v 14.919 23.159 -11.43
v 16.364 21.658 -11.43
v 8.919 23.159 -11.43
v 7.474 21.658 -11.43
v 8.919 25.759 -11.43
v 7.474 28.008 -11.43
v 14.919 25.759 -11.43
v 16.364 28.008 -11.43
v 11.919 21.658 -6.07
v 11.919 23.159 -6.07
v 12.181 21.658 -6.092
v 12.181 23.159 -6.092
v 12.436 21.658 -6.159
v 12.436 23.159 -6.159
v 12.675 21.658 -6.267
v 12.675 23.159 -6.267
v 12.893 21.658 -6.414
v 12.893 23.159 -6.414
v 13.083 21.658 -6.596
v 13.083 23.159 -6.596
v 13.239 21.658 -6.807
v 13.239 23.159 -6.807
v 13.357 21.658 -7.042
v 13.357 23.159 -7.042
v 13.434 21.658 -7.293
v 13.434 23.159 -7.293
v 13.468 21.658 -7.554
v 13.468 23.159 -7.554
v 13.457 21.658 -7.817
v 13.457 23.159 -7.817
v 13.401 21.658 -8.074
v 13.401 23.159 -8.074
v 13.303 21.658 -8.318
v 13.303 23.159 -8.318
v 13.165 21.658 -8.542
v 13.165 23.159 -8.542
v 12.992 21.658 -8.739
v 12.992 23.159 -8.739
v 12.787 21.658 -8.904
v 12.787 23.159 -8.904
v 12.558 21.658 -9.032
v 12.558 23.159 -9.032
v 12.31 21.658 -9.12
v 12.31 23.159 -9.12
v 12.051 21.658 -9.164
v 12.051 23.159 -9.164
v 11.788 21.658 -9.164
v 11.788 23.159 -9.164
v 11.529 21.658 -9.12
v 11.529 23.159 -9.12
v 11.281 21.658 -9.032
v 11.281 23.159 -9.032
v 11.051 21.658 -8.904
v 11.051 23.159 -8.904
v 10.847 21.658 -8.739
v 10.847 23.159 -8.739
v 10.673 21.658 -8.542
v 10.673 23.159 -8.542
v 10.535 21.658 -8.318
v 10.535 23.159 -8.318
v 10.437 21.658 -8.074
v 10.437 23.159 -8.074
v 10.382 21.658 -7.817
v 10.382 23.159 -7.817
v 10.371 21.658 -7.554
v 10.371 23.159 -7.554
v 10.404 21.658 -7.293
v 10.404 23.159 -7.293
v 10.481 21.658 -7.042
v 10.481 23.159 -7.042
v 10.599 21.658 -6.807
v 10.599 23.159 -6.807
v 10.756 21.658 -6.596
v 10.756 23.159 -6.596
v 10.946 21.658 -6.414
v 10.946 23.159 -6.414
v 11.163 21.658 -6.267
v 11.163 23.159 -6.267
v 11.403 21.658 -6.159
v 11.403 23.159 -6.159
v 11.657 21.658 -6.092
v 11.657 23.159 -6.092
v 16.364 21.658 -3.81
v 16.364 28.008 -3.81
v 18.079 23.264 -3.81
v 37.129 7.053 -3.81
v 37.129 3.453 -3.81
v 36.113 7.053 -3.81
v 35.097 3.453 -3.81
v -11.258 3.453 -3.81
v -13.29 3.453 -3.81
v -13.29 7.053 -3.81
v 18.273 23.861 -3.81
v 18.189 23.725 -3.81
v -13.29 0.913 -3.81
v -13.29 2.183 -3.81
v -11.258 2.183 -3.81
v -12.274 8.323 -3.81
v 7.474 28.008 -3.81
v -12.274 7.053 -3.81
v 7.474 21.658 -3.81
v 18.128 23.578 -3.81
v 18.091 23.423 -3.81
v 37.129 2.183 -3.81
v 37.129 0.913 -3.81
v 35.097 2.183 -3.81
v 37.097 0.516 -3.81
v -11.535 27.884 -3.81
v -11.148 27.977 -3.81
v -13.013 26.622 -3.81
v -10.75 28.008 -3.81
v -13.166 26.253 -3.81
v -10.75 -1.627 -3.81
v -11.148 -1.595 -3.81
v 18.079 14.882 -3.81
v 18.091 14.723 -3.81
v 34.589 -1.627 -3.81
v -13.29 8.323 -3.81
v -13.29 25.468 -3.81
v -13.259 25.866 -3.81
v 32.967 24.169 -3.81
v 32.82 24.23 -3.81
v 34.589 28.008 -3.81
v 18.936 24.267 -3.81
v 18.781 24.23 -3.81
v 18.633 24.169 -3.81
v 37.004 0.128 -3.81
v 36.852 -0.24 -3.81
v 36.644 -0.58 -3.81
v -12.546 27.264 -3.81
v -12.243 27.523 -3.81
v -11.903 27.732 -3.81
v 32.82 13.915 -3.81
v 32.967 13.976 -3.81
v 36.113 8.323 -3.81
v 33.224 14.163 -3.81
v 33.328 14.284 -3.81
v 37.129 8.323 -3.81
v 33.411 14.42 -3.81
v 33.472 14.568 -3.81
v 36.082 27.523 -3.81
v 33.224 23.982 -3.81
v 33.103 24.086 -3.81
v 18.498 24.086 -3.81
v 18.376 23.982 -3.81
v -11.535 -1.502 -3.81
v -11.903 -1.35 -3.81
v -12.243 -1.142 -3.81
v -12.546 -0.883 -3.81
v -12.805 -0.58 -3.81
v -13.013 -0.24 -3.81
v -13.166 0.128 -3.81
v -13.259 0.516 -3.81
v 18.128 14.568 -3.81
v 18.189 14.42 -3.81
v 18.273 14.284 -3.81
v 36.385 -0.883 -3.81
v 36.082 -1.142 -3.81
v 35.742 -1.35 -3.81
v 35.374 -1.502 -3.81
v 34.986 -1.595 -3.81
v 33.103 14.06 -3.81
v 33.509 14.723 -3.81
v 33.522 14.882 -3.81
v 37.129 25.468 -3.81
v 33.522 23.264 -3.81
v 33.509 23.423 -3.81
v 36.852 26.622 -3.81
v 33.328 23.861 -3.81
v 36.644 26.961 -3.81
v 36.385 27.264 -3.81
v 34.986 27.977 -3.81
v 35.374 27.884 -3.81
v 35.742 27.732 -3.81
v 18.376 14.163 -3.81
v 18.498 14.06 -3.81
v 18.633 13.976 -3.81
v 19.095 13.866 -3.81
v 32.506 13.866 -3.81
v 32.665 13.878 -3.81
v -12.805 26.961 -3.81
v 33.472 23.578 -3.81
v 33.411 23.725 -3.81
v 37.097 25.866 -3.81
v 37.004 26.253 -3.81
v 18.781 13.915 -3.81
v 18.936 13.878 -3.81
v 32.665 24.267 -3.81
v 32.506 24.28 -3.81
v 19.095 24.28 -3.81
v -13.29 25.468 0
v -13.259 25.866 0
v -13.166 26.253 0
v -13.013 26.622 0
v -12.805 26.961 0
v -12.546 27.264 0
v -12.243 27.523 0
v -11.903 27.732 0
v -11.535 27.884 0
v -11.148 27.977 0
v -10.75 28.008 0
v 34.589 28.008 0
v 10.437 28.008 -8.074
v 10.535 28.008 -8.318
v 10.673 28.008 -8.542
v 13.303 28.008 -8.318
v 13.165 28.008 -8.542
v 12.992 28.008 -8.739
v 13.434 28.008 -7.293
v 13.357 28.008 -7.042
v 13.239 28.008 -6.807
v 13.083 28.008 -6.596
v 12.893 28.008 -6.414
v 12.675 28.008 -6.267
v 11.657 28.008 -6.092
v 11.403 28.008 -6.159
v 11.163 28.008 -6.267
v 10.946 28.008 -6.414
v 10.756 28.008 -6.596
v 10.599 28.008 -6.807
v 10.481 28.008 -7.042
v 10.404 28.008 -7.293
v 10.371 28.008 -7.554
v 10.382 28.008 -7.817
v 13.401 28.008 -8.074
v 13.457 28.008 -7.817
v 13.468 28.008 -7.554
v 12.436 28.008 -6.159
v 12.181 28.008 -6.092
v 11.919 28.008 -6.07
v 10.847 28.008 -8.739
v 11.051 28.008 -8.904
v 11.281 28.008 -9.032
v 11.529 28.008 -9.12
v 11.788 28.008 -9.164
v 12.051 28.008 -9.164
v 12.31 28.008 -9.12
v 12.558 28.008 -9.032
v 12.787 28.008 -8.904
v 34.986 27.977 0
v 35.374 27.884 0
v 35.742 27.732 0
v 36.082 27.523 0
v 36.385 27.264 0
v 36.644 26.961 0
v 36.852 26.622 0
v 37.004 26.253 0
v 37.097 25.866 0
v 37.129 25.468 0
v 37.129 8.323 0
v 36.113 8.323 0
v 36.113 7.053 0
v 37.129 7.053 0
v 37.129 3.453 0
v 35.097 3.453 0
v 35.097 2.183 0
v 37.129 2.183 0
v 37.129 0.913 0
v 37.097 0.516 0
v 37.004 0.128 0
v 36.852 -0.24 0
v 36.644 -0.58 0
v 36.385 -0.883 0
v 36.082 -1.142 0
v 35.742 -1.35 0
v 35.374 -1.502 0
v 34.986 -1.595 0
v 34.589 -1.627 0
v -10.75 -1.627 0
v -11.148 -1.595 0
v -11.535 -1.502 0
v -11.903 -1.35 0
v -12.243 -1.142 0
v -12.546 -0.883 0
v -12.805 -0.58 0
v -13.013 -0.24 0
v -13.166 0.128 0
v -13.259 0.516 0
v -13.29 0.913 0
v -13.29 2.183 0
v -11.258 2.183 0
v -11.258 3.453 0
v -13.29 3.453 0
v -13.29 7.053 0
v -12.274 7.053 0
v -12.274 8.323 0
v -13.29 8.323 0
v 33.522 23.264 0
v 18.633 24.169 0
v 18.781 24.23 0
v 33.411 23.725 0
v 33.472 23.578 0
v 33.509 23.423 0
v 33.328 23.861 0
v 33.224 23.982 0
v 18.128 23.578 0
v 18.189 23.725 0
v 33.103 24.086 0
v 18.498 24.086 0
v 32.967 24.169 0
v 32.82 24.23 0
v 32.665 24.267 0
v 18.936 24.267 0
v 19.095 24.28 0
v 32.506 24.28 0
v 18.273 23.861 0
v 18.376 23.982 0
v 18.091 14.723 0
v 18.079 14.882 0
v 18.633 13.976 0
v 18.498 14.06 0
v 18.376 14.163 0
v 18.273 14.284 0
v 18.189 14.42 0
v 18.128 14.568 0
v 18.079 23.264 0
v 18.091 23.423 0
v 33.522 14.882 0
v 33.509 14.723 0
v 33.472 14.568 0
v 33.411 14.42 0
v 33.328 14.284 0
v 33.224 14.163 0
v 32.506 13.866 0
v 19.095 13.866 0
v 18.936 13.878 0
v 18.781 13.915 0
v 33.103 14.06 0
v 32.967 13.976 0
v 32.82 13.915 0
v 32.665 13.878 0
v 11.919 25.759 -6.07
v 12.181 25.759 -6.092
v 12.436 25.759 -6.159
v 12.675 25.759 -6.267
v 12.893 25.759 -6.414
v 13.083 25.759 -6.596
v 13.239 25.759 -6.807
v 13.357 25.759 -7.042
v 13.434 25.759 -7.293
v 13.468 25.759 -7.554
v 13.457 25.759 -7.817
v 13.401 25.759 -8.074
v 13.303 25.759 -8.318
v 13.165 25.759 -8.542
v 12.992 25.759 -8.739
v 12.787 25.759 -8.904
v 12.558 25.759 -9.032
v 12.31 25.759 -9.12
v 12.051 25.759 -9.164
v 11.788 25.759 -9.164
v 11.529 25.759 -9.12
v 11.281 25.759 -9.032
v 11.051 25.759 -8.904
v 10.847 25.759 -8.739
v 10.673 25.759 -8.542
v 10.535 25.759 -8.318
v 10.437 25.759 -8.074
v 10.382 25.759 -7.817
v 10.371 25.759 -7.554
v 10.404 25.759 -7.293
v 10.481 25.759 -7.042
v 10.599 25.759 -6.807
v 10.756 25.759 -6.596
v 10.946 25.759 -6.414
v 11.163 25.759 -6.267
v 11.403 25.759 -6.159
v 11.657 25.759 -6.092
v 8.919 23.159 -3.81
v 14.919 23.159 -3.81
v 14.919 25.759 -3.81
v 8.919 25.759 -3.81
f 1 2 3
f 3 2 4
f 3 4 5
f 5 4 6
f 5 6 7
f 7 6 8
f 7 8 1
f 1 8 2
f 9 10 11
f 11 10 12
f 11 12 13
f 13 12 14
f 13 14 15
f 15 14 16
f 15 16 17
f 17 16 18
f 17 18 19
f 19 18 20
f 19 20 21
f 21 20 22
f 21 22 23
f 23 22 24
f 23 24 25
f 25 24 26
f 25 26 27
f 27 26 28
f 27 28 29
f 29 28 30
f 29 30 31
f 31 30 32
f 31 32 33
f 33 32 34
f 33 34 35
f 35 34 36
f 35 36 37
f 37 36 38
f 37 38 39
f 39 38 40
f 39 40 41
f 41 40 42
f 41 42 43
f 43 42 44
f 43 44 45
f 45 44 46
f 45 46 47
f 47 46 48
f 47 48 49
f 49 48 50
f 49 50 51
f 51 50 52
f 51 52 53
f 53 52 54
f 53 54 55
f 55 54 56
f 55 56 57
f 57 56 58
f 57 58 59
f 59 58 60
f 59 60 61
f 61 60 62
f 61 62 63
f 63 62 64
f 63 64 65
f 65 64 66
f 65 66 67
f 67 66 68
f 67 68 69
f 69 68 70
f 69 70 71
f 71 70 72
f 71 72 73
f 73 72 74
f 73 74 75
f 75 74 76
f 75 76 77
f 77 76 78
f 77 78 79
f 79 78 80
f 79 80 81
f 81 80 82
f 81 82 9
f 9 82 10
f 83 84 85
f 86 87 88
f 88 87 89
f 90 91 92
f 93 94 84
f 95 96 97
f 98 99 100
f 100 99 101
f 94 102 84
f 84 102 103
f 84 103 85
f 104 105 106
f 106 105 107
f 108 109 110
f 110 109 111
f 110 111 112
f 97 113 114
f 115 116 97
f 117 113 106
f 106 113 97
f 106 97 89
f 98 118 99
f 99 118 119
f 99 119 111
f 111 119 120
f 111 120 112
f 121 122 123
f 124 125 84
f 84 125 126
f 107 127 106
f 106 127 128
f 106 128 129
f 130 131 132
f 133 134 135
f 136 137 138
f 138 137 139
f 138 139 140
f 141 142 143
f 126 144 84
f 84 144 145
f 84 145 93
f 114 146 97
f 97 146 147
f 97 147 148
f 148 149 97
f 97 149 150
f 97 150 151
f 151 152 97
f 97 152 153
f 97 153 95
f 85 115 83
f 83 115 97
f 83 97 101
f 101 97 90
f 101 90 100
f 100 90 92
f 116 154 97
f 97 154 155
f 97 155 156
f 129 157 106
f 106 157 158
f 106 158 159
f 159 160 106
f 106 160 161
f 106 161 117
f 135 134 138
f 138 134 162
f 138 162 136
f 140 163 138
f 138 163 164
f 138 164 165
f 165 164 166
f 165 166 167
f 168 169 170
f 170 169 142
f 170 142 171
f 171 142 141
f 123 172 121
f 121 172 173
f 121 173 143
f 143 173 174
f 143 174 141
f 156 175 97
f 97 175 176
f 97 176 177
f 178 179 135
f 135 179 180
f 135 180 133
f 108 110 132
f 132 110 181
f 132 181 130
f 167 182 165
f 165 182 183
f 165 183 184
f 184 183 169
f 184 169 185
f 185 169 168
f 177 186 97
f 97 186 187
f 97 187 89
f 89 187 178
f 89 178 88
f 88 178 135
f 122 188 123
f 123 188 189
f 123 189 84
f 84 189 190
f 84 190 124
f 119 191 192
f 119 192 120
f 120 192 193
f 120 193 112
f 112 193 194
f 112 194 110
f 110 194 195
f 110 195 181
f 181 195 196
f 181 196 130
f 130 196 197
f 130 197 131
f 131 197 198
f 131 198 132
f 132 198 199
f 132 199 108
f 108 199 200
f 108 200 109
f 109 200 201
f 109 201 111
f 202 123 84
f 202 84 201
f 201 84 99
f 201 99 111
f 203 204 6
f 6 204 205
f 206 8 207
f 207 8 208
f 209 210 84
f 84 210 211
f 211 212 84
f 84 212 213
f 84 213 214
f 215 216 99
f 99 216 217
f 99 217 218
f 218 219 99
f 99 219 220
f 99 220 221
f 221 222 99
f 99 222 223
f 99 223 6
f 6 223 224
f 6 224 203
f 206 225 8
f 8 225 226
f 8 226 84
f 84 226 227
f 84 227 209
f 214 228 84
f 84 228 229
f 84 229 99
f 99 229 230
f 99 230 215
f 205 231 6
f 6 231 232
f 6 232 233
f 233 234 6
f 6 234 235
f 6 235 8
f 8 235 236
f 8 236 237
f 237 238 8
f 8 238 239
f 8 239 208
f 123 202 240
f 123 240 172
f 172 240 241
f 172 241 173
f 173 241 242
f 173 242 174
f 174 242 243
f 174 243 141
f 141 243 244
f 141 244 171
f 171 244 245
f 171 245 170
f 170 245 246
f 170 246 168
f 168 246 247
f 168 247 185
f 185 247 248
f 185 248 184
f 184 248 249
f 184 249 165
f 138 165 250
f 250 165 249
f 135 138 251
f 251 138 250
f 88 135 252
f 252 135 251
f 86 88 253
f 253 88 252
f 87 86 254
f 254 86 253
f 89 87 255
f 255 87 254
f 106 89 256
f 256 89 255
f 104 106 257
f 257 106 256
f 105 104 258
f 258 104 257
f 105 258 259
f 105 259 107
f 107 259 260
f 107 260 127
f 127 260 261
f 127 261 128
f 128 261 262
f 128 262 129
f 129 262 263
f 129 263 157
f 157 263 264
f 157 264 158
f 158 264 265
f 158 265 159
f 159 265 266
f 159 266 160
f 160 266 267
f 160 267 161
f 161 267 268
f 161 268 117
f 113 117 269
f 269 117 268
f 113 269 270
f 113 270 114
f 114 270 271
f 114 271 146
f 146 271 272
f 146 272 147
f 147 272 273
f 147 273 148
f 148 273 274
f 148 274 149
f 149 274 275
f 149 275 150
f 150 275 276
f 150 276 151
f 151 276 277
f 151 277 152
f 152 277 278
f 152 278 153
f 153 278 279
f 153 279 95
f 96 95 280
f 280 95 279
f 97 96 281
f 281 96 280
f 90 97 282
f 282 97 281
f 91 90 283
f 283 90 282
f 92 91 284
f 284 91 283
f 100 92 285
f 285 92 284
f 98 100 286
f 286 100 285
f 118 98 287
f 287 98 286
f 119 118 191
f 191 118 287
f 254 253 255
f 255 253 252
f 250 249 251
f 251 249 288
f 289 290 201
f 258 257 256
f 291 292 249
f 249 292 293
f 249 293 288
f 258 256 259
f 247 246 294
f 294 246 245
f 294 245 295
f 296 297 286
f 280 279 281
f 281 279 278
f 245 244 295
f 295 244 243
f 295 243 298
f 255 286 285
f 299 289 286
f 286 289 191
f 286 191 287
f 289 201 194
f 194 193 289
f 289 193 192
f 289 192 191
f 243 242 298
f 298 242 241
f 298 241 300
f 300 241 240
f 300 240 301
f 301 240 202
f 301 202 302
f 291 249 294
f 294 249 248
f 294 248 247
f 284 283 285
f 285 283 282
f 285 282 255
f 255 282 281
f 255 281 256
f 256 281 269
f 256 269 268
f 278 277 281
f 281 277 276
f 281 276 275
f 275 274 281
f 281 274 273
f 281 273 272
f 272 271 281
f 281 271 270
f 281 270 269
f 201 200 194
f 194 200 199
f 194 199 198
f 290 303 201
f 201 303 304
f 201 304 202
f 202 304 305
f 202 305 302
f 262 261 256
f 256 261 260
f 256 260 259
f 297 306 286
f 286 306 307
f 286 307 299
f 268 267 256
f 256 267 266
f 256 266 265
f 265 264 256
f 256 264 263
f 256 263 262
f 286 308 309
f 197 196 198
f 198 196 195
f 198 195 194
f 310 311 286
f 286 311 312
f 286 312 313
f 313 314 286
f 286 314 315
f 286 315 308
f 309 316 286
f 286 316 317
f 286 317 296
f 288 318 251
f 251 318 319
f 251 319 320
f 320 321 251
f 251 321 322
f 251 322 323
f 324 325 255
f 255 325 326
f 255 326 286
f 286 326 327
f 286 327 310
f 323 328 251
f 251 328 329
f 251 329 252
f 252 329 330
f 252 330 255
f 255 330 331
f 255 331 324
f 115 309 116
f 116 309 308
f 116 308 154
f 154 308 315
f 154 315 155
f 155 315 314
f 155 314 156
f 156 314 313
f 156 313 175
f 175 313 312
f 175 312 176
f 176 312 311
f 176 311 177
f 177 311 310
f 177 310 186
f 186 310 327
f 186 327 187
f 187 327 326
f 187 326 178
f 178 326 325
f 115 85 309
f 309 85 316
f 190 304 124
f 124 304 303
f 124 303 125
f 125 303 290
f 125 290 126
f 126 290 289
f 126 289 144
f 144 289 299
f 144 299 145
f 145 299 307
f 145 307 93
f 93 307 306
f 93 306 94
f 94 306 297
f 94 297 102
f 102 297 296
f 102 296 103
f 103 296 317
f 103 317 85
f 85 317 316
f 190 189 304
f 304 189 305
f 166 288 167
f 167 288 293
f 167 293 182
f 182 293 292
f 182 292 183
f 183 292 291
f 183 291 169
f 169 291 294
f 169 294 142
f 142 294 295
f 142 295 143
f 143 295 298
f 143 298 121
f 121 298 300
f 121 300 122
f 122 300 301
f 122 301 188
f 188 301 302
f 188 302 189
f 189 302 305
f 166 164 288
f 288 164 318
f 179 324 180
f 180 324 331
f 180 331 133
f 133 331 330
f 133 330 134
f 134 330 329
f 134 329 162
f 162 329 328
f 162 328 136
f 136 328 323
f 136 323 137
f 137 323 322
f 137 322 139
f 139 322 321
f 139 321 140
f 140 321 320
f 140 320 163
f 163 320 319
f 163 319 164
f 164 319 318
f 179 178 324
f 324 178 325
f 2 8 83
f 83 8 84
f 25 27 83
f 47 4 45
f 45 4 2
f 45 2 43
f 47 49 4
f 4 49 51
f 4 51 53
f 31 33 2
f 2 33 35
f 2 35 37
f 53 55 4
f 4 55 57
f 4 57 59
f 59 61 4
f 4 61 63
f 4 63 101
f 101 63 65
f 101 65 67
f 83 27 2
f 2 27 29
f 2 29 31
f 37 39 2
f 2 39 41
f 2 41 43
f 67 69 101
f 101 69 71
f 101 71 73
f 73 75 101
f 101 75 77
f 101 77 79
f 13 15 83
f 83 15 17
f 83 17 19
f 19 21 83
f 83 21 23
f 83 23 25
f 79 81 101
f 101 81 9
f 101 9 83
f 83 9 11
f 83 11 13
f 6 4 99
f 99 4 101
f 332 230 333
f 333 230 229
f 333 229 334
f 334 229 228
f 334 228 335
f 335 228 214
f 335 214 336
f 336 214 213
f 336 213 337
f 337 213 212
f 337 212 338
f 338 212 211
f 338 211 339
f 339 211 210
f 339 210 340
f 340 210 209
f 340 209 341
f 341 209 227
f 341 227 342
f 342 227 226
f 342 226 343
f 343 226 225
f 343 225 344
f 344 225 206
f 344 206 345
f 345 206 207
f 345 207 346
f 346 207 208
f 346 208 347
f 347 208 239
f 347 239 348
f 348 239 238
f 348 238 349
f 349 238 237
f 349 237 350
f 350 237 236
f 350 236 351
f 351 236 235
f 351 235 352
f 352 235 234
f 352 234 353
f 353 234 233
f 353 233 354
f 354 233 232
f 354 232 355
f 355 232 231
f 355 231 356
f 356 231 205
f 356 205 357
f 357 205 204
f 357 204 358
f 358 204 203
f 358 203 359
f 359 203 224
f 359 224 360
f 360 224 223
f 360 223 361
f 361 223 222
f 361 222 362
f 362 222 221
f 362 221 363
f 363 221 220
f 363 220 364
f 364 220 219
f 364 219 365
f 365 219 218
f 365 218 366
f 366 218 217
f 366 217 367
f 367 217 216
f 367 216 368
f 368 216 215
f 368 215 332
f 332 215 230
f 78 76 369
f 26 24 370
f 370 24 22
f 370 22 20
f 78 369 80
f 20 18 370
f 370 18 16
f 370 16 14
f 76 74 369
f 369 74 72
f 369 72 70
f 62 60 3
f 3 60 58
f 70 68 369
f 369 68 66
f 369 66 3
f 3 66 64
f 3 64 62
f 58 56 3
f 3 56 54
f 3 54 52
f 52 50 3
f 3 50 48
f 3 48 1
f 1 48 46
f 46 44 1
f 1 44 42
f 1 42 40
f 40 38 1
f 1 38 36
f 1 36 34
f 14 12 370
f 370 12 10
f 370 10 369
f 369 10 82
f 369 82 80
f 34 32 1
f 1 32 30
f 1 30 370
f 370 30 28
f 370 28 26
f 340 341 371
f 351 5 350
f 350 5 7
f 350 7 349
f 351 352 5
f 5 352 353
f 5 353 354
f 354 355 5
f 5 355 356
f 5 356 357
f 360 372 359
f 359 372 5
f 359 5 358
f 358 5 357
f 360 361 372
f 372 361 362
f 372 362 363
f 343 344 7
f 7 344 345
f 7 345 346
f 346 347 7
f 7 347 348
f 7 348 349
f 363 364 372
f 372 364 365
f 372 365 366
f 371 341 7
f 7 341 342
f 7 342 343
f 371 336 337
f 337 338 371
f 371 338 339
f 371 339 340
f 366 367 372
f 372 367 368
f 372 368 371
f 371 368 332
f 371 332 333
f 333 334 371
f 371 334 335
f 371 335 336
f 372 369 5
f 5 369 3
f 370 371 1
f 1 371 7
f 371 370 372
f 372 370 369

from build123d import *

# Parameters (mm, degrees)
BOSS_EXTRUDE1_DEPTH = 3.81
SKETCH2_W           = 8.89
SKETCH2_H           = 6.35
BOSS_EXTRUDE2_DEPTH = 7.62
CUT_EXTRUDE1_DEPTH  = 7.62
SKETCH4_W           = 6
SKETCH4_H           = 1.674510172
SKETCH4_H_2         = 0.925489708
CUT_EXTRUDE2_DEPTH  = 7.62


with BuildPart() as part:
    # Sketch1 → Boss-Extrude1 (new body)
    with BuildSketch(Plane.XY):
        with BuildLine():
            Line((37.128754647, 0.913367565), (37.128754647, 2.183367565))
            Line((37.128754647, 2.183367565), (35.096754647, 2.183367565))
            Line((35.096754647, 2.183367565), (35.096754647, 3.453367565))
            Line((35.096754647, 3.453367565), (37.128754647, 3.453367565))
            Line((37.128754647, 3.453367565), (37.128754647, 7.053367565))
            Line((37.128754647, 7.053367565), (36.112754647, 7.053367565))
            Line((36.112754647, 7.053367565), (36.112754647, 8.323367565))
            Line((36.112754647, 8.323367565), (37.128754647, 8.323367565))
            Line((37.128754647, 8.323367565), (37.128754647, 25.468367565))
            ThreePointArc((37.128754647, 25.468367565), (36.384805872, 27.264418789), (34.588754647, 28.008367565))
            Line((34.588754647, 28.008367565), (-10.750245353, 28.008367565))
            ThreePointArc((-10.750245353, 28.008367565), (-12.546296577, 27.264418789), (-13.290245353, 25.468367565))
            Line((-13.290245353, 25.468367565), (-13.290245353, 8.323367565))
            Line((-13.290245353, 8.323367565), (-12.274245353, 8.323367565))
            Line((-12.274245353, 8.323367565), (-12.274245353, 7.053367565))
            Line((-12.274245353, 7.053367565), (-13.290245353, 7.053367565))
            Line((-13.290245353, 7.053367565), (-13.290245353, 3.453367565))
            Line((-13.290245353, 3.453367565), (-11.258245353, 3.453367565))
            Line((-11.258245353, 3.453367565), (-11.258245353, 2.183367565))
            Line((-11.258245353, 2.183367565), (-13.290245353, 2.183367565))
            Line((-13.290245353, 2.183367565), (-13.290245353, 0.913367565))
            ThreePointArc((-13.290245353, 0.913367565), (-12.546296577, -0.882683659), (-10.750245353, -1.626632435))
            Line((-10.750245353, -1.626632435), (34.588754647, -1.626632435))
            ThreePointArc((34.588754647, -1.626632435), (36.384805872, -0.882683659), (37.128754647, 0.913367565))
        make_face()
        with BuildLine():
            Line((32.505954647, 24.279567565), (19.094754647, 24.279567565))
            ThreePointArc((19.094754647, 24.279567565), (18.376334158, 23.981988055), (18.078754647, 23.263567565))
            Line((18.078754647, 23.263567565), (18.078754647, 14.881567565))
            ThreePointArc((18.078754647, 14.881567565), (18.376334158, 14.163147076), (19.094754647, 13.865567565))
            Line((19.094754647, 13.865567565), (32.505954647, 13.865567565))
            ThreePointArc((32.505954647, 13.865567565), (33.224375137, 14.163147076), (33.521954647, 14.881567565))
            Line((33.521954647, 14.881567565), (33.521954647, 23.263567565))
            ThreePointArc((33.521954647, 23.263567565), (33.224375137, 23.981988055), (32.505954647, 24.279567565))
        make_face(mode=Mode.SUBTRACT)
    extrude(amount=-BOSS_EXTRUDE1_DEPTH)

    # Sketch2 → Boss-Extrude2 (add)
    with BuildSketch(Plane(origin=(0, 0, -3.81), x_dir=(-1, 0, 0), z_dir=(0, 0, -1))):
        with Locations((-11.919254647, 24.833367565)):
            Rectangle(SKETCH2_W, SKETCH2_H)
    extrude(amount=BOSS_EXTRUDE2_DEPTH)

    # Sketch3 → Cut-Extrude1 (cut)
    with BuildSketch(Plane(origin=(0, 28.008367565, 0), x_dir=(1, 0, 0), z_dir=(0, 1, 0))):
        with BuildLine():
            ThreePointArc((13.096102381, 8.628726629), (10.910528019, 8.796847734), (10.742406914, 6.611273371))
            Line((10.742406914, 6.611273371), (13.096102381, 8.628726629))
        make_face()
        with BuildLine():
            Line((13.096102381, 8.628726629), (10.742406914, 6.611273371))
            ThreePointArc((10.742406914, 6.611273371), (12.457021331, 6.166278227), (13.469254647, 7.62))
            ThreePointArc((13.469254647, 7.62), (13.372976421, 8.157766684), (13.096102381, 8.628726629))
        make_face()
    extrude(amount=-CUT_EXTRUDE1_DEPTH, mode=Mode.SUBTRACT)

    # Sketch4 → Cut-Extrude2 (cut)
    with BuildSketch(Plane(origin=(0, 0, -11.43), x_dir=(-1, 0, 0), z_dir=(0, 0, -1))):
        with Locations((-11.919254647, 23.996112479)):
            Rectangle(SKETCH4_W, SKETCH4_H)
        with Locations((-11.919254647, 25.296112419)):
            Rectangle(SKETCH4_W, SKETCH4_H_2)
    extrude(amount=-CUT_EXTRUDE2_DEPTH, mode=Mode.SUBTRACT)


solid = part.part
